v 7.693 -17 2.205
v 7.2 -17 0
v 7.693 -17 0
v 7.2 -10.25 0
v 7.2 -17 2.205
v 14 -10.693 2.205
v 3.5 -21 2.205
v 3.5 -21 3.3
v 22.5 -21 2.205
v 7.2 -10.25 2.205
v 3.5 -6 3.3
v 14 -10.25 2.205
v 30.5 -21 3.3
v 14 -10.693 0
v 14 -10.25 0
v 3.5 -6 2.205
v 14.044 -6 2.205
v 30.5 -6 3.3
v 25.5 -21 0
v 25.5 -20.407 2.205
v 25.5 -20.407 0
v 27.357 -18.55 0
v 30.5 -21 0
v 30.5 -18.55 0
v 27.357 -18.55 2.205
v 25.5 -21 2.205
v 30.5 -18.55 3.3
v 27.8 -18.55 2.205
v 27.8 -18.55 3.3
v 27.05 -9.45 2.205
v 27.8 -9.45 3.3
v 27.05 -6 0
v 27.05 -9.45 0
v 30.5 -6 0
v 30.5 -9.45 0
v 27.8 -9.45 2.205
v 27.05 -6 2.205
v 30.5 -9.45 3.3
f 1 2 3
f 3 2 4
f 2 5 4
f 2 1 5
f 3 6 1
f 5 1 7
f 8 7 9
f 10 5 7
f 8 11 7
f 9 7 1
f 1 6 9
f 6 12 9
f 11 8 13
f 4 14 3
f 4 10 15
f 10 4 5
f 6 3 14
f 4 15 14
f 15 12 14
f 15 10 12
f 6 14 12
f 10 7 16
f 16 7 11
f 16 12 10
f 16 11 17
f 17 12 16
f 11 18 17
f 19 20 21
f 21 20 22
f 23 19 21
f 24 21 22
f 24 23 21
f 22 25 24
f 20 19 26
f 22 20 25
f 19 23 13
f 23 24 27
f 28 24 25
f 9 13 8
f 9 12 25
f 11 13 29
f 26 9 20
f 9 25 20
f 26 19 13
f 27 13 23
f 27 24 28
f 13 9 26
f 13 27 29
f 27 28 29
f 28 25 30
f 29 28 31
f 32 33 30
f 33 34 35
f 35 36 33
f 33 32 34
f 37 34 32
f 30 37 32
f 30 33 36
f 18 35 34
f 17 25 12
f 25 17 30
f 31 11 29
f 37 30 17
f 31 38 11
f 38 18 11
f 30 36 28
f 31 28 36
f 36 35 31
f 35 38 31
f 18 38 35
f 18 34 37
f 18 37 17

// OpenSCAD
/* 
 * Screen support for SAO DMM
 *
 * Design: hxr.social/@thomasflummer
 *
 * License: CC-BY-SA
 *
 */
 
 module screen_support(pcb_spacing)
{
    difference()
    {
        union()
        {
            translate([17, -(7 + (13/2)), (pcb_spacing-1.5-0.1)/2])
                cube([27, 15, pcb_spacing-1.5-0.1], center = true);
        }
        union()
        {
            // cutout for USB-C connector
            translate([17*2 - 6.2 + 8/2, -14, (pcb_spacing-1.5-0.1)/2])
                cube([8, 9.1, pcb_spacing], center = true);

            // cutout for USB-C support + misc
            translate([17*2 - 6.3-8 + 8/2, -14, 2.2/2])
                cube([10, 9.1, 2.21], center = true);

            // cutout flash
            translate([7/2, -(7 + (13/2)), 2.2/2])
                cube([7.4, 15.1, 2.21], center = true);
                
            // cutout oled jelly beans
            translate([17, -(10.25/2), 2.2/2])
                cube([20.1, 10.25, 2.21], center = true);

            // cutout RP2040 + support
            translate([17, -18.3, 2.2/2])
            rotate(45, [0, 0, 1])
                cube([15, 15, 2.21], center = true);
            
            // cutout crystal
            translate([17-8, -18.3-5/2, 2.2/2])
                cube([5, 5, 2.21], center = true);

                
            // remove spikes
            translate([17-10, -18.5, 2.2/2])
                cube([3, 3, 2.21], center = true);

            translate([17-1.5, -10, 2.2/2])
                cube([3, 3, 2.21], center = true);

            translate([17+7, -21, 2.2/2])
                cube([3, 3, 2.21], center = true);
        }
    }
}

/*

Screen dimensions

Thickness: 1.5 mm
Width (glass): 27 mm
Height (glass): 15 mm (the part centered around the display data

Front PCB opening

Width: 25 mm
Height: 13 mm

Position: 7 mm from top of base PCB, centered

*/ 

color("#444444")
screen_support(4.9);
